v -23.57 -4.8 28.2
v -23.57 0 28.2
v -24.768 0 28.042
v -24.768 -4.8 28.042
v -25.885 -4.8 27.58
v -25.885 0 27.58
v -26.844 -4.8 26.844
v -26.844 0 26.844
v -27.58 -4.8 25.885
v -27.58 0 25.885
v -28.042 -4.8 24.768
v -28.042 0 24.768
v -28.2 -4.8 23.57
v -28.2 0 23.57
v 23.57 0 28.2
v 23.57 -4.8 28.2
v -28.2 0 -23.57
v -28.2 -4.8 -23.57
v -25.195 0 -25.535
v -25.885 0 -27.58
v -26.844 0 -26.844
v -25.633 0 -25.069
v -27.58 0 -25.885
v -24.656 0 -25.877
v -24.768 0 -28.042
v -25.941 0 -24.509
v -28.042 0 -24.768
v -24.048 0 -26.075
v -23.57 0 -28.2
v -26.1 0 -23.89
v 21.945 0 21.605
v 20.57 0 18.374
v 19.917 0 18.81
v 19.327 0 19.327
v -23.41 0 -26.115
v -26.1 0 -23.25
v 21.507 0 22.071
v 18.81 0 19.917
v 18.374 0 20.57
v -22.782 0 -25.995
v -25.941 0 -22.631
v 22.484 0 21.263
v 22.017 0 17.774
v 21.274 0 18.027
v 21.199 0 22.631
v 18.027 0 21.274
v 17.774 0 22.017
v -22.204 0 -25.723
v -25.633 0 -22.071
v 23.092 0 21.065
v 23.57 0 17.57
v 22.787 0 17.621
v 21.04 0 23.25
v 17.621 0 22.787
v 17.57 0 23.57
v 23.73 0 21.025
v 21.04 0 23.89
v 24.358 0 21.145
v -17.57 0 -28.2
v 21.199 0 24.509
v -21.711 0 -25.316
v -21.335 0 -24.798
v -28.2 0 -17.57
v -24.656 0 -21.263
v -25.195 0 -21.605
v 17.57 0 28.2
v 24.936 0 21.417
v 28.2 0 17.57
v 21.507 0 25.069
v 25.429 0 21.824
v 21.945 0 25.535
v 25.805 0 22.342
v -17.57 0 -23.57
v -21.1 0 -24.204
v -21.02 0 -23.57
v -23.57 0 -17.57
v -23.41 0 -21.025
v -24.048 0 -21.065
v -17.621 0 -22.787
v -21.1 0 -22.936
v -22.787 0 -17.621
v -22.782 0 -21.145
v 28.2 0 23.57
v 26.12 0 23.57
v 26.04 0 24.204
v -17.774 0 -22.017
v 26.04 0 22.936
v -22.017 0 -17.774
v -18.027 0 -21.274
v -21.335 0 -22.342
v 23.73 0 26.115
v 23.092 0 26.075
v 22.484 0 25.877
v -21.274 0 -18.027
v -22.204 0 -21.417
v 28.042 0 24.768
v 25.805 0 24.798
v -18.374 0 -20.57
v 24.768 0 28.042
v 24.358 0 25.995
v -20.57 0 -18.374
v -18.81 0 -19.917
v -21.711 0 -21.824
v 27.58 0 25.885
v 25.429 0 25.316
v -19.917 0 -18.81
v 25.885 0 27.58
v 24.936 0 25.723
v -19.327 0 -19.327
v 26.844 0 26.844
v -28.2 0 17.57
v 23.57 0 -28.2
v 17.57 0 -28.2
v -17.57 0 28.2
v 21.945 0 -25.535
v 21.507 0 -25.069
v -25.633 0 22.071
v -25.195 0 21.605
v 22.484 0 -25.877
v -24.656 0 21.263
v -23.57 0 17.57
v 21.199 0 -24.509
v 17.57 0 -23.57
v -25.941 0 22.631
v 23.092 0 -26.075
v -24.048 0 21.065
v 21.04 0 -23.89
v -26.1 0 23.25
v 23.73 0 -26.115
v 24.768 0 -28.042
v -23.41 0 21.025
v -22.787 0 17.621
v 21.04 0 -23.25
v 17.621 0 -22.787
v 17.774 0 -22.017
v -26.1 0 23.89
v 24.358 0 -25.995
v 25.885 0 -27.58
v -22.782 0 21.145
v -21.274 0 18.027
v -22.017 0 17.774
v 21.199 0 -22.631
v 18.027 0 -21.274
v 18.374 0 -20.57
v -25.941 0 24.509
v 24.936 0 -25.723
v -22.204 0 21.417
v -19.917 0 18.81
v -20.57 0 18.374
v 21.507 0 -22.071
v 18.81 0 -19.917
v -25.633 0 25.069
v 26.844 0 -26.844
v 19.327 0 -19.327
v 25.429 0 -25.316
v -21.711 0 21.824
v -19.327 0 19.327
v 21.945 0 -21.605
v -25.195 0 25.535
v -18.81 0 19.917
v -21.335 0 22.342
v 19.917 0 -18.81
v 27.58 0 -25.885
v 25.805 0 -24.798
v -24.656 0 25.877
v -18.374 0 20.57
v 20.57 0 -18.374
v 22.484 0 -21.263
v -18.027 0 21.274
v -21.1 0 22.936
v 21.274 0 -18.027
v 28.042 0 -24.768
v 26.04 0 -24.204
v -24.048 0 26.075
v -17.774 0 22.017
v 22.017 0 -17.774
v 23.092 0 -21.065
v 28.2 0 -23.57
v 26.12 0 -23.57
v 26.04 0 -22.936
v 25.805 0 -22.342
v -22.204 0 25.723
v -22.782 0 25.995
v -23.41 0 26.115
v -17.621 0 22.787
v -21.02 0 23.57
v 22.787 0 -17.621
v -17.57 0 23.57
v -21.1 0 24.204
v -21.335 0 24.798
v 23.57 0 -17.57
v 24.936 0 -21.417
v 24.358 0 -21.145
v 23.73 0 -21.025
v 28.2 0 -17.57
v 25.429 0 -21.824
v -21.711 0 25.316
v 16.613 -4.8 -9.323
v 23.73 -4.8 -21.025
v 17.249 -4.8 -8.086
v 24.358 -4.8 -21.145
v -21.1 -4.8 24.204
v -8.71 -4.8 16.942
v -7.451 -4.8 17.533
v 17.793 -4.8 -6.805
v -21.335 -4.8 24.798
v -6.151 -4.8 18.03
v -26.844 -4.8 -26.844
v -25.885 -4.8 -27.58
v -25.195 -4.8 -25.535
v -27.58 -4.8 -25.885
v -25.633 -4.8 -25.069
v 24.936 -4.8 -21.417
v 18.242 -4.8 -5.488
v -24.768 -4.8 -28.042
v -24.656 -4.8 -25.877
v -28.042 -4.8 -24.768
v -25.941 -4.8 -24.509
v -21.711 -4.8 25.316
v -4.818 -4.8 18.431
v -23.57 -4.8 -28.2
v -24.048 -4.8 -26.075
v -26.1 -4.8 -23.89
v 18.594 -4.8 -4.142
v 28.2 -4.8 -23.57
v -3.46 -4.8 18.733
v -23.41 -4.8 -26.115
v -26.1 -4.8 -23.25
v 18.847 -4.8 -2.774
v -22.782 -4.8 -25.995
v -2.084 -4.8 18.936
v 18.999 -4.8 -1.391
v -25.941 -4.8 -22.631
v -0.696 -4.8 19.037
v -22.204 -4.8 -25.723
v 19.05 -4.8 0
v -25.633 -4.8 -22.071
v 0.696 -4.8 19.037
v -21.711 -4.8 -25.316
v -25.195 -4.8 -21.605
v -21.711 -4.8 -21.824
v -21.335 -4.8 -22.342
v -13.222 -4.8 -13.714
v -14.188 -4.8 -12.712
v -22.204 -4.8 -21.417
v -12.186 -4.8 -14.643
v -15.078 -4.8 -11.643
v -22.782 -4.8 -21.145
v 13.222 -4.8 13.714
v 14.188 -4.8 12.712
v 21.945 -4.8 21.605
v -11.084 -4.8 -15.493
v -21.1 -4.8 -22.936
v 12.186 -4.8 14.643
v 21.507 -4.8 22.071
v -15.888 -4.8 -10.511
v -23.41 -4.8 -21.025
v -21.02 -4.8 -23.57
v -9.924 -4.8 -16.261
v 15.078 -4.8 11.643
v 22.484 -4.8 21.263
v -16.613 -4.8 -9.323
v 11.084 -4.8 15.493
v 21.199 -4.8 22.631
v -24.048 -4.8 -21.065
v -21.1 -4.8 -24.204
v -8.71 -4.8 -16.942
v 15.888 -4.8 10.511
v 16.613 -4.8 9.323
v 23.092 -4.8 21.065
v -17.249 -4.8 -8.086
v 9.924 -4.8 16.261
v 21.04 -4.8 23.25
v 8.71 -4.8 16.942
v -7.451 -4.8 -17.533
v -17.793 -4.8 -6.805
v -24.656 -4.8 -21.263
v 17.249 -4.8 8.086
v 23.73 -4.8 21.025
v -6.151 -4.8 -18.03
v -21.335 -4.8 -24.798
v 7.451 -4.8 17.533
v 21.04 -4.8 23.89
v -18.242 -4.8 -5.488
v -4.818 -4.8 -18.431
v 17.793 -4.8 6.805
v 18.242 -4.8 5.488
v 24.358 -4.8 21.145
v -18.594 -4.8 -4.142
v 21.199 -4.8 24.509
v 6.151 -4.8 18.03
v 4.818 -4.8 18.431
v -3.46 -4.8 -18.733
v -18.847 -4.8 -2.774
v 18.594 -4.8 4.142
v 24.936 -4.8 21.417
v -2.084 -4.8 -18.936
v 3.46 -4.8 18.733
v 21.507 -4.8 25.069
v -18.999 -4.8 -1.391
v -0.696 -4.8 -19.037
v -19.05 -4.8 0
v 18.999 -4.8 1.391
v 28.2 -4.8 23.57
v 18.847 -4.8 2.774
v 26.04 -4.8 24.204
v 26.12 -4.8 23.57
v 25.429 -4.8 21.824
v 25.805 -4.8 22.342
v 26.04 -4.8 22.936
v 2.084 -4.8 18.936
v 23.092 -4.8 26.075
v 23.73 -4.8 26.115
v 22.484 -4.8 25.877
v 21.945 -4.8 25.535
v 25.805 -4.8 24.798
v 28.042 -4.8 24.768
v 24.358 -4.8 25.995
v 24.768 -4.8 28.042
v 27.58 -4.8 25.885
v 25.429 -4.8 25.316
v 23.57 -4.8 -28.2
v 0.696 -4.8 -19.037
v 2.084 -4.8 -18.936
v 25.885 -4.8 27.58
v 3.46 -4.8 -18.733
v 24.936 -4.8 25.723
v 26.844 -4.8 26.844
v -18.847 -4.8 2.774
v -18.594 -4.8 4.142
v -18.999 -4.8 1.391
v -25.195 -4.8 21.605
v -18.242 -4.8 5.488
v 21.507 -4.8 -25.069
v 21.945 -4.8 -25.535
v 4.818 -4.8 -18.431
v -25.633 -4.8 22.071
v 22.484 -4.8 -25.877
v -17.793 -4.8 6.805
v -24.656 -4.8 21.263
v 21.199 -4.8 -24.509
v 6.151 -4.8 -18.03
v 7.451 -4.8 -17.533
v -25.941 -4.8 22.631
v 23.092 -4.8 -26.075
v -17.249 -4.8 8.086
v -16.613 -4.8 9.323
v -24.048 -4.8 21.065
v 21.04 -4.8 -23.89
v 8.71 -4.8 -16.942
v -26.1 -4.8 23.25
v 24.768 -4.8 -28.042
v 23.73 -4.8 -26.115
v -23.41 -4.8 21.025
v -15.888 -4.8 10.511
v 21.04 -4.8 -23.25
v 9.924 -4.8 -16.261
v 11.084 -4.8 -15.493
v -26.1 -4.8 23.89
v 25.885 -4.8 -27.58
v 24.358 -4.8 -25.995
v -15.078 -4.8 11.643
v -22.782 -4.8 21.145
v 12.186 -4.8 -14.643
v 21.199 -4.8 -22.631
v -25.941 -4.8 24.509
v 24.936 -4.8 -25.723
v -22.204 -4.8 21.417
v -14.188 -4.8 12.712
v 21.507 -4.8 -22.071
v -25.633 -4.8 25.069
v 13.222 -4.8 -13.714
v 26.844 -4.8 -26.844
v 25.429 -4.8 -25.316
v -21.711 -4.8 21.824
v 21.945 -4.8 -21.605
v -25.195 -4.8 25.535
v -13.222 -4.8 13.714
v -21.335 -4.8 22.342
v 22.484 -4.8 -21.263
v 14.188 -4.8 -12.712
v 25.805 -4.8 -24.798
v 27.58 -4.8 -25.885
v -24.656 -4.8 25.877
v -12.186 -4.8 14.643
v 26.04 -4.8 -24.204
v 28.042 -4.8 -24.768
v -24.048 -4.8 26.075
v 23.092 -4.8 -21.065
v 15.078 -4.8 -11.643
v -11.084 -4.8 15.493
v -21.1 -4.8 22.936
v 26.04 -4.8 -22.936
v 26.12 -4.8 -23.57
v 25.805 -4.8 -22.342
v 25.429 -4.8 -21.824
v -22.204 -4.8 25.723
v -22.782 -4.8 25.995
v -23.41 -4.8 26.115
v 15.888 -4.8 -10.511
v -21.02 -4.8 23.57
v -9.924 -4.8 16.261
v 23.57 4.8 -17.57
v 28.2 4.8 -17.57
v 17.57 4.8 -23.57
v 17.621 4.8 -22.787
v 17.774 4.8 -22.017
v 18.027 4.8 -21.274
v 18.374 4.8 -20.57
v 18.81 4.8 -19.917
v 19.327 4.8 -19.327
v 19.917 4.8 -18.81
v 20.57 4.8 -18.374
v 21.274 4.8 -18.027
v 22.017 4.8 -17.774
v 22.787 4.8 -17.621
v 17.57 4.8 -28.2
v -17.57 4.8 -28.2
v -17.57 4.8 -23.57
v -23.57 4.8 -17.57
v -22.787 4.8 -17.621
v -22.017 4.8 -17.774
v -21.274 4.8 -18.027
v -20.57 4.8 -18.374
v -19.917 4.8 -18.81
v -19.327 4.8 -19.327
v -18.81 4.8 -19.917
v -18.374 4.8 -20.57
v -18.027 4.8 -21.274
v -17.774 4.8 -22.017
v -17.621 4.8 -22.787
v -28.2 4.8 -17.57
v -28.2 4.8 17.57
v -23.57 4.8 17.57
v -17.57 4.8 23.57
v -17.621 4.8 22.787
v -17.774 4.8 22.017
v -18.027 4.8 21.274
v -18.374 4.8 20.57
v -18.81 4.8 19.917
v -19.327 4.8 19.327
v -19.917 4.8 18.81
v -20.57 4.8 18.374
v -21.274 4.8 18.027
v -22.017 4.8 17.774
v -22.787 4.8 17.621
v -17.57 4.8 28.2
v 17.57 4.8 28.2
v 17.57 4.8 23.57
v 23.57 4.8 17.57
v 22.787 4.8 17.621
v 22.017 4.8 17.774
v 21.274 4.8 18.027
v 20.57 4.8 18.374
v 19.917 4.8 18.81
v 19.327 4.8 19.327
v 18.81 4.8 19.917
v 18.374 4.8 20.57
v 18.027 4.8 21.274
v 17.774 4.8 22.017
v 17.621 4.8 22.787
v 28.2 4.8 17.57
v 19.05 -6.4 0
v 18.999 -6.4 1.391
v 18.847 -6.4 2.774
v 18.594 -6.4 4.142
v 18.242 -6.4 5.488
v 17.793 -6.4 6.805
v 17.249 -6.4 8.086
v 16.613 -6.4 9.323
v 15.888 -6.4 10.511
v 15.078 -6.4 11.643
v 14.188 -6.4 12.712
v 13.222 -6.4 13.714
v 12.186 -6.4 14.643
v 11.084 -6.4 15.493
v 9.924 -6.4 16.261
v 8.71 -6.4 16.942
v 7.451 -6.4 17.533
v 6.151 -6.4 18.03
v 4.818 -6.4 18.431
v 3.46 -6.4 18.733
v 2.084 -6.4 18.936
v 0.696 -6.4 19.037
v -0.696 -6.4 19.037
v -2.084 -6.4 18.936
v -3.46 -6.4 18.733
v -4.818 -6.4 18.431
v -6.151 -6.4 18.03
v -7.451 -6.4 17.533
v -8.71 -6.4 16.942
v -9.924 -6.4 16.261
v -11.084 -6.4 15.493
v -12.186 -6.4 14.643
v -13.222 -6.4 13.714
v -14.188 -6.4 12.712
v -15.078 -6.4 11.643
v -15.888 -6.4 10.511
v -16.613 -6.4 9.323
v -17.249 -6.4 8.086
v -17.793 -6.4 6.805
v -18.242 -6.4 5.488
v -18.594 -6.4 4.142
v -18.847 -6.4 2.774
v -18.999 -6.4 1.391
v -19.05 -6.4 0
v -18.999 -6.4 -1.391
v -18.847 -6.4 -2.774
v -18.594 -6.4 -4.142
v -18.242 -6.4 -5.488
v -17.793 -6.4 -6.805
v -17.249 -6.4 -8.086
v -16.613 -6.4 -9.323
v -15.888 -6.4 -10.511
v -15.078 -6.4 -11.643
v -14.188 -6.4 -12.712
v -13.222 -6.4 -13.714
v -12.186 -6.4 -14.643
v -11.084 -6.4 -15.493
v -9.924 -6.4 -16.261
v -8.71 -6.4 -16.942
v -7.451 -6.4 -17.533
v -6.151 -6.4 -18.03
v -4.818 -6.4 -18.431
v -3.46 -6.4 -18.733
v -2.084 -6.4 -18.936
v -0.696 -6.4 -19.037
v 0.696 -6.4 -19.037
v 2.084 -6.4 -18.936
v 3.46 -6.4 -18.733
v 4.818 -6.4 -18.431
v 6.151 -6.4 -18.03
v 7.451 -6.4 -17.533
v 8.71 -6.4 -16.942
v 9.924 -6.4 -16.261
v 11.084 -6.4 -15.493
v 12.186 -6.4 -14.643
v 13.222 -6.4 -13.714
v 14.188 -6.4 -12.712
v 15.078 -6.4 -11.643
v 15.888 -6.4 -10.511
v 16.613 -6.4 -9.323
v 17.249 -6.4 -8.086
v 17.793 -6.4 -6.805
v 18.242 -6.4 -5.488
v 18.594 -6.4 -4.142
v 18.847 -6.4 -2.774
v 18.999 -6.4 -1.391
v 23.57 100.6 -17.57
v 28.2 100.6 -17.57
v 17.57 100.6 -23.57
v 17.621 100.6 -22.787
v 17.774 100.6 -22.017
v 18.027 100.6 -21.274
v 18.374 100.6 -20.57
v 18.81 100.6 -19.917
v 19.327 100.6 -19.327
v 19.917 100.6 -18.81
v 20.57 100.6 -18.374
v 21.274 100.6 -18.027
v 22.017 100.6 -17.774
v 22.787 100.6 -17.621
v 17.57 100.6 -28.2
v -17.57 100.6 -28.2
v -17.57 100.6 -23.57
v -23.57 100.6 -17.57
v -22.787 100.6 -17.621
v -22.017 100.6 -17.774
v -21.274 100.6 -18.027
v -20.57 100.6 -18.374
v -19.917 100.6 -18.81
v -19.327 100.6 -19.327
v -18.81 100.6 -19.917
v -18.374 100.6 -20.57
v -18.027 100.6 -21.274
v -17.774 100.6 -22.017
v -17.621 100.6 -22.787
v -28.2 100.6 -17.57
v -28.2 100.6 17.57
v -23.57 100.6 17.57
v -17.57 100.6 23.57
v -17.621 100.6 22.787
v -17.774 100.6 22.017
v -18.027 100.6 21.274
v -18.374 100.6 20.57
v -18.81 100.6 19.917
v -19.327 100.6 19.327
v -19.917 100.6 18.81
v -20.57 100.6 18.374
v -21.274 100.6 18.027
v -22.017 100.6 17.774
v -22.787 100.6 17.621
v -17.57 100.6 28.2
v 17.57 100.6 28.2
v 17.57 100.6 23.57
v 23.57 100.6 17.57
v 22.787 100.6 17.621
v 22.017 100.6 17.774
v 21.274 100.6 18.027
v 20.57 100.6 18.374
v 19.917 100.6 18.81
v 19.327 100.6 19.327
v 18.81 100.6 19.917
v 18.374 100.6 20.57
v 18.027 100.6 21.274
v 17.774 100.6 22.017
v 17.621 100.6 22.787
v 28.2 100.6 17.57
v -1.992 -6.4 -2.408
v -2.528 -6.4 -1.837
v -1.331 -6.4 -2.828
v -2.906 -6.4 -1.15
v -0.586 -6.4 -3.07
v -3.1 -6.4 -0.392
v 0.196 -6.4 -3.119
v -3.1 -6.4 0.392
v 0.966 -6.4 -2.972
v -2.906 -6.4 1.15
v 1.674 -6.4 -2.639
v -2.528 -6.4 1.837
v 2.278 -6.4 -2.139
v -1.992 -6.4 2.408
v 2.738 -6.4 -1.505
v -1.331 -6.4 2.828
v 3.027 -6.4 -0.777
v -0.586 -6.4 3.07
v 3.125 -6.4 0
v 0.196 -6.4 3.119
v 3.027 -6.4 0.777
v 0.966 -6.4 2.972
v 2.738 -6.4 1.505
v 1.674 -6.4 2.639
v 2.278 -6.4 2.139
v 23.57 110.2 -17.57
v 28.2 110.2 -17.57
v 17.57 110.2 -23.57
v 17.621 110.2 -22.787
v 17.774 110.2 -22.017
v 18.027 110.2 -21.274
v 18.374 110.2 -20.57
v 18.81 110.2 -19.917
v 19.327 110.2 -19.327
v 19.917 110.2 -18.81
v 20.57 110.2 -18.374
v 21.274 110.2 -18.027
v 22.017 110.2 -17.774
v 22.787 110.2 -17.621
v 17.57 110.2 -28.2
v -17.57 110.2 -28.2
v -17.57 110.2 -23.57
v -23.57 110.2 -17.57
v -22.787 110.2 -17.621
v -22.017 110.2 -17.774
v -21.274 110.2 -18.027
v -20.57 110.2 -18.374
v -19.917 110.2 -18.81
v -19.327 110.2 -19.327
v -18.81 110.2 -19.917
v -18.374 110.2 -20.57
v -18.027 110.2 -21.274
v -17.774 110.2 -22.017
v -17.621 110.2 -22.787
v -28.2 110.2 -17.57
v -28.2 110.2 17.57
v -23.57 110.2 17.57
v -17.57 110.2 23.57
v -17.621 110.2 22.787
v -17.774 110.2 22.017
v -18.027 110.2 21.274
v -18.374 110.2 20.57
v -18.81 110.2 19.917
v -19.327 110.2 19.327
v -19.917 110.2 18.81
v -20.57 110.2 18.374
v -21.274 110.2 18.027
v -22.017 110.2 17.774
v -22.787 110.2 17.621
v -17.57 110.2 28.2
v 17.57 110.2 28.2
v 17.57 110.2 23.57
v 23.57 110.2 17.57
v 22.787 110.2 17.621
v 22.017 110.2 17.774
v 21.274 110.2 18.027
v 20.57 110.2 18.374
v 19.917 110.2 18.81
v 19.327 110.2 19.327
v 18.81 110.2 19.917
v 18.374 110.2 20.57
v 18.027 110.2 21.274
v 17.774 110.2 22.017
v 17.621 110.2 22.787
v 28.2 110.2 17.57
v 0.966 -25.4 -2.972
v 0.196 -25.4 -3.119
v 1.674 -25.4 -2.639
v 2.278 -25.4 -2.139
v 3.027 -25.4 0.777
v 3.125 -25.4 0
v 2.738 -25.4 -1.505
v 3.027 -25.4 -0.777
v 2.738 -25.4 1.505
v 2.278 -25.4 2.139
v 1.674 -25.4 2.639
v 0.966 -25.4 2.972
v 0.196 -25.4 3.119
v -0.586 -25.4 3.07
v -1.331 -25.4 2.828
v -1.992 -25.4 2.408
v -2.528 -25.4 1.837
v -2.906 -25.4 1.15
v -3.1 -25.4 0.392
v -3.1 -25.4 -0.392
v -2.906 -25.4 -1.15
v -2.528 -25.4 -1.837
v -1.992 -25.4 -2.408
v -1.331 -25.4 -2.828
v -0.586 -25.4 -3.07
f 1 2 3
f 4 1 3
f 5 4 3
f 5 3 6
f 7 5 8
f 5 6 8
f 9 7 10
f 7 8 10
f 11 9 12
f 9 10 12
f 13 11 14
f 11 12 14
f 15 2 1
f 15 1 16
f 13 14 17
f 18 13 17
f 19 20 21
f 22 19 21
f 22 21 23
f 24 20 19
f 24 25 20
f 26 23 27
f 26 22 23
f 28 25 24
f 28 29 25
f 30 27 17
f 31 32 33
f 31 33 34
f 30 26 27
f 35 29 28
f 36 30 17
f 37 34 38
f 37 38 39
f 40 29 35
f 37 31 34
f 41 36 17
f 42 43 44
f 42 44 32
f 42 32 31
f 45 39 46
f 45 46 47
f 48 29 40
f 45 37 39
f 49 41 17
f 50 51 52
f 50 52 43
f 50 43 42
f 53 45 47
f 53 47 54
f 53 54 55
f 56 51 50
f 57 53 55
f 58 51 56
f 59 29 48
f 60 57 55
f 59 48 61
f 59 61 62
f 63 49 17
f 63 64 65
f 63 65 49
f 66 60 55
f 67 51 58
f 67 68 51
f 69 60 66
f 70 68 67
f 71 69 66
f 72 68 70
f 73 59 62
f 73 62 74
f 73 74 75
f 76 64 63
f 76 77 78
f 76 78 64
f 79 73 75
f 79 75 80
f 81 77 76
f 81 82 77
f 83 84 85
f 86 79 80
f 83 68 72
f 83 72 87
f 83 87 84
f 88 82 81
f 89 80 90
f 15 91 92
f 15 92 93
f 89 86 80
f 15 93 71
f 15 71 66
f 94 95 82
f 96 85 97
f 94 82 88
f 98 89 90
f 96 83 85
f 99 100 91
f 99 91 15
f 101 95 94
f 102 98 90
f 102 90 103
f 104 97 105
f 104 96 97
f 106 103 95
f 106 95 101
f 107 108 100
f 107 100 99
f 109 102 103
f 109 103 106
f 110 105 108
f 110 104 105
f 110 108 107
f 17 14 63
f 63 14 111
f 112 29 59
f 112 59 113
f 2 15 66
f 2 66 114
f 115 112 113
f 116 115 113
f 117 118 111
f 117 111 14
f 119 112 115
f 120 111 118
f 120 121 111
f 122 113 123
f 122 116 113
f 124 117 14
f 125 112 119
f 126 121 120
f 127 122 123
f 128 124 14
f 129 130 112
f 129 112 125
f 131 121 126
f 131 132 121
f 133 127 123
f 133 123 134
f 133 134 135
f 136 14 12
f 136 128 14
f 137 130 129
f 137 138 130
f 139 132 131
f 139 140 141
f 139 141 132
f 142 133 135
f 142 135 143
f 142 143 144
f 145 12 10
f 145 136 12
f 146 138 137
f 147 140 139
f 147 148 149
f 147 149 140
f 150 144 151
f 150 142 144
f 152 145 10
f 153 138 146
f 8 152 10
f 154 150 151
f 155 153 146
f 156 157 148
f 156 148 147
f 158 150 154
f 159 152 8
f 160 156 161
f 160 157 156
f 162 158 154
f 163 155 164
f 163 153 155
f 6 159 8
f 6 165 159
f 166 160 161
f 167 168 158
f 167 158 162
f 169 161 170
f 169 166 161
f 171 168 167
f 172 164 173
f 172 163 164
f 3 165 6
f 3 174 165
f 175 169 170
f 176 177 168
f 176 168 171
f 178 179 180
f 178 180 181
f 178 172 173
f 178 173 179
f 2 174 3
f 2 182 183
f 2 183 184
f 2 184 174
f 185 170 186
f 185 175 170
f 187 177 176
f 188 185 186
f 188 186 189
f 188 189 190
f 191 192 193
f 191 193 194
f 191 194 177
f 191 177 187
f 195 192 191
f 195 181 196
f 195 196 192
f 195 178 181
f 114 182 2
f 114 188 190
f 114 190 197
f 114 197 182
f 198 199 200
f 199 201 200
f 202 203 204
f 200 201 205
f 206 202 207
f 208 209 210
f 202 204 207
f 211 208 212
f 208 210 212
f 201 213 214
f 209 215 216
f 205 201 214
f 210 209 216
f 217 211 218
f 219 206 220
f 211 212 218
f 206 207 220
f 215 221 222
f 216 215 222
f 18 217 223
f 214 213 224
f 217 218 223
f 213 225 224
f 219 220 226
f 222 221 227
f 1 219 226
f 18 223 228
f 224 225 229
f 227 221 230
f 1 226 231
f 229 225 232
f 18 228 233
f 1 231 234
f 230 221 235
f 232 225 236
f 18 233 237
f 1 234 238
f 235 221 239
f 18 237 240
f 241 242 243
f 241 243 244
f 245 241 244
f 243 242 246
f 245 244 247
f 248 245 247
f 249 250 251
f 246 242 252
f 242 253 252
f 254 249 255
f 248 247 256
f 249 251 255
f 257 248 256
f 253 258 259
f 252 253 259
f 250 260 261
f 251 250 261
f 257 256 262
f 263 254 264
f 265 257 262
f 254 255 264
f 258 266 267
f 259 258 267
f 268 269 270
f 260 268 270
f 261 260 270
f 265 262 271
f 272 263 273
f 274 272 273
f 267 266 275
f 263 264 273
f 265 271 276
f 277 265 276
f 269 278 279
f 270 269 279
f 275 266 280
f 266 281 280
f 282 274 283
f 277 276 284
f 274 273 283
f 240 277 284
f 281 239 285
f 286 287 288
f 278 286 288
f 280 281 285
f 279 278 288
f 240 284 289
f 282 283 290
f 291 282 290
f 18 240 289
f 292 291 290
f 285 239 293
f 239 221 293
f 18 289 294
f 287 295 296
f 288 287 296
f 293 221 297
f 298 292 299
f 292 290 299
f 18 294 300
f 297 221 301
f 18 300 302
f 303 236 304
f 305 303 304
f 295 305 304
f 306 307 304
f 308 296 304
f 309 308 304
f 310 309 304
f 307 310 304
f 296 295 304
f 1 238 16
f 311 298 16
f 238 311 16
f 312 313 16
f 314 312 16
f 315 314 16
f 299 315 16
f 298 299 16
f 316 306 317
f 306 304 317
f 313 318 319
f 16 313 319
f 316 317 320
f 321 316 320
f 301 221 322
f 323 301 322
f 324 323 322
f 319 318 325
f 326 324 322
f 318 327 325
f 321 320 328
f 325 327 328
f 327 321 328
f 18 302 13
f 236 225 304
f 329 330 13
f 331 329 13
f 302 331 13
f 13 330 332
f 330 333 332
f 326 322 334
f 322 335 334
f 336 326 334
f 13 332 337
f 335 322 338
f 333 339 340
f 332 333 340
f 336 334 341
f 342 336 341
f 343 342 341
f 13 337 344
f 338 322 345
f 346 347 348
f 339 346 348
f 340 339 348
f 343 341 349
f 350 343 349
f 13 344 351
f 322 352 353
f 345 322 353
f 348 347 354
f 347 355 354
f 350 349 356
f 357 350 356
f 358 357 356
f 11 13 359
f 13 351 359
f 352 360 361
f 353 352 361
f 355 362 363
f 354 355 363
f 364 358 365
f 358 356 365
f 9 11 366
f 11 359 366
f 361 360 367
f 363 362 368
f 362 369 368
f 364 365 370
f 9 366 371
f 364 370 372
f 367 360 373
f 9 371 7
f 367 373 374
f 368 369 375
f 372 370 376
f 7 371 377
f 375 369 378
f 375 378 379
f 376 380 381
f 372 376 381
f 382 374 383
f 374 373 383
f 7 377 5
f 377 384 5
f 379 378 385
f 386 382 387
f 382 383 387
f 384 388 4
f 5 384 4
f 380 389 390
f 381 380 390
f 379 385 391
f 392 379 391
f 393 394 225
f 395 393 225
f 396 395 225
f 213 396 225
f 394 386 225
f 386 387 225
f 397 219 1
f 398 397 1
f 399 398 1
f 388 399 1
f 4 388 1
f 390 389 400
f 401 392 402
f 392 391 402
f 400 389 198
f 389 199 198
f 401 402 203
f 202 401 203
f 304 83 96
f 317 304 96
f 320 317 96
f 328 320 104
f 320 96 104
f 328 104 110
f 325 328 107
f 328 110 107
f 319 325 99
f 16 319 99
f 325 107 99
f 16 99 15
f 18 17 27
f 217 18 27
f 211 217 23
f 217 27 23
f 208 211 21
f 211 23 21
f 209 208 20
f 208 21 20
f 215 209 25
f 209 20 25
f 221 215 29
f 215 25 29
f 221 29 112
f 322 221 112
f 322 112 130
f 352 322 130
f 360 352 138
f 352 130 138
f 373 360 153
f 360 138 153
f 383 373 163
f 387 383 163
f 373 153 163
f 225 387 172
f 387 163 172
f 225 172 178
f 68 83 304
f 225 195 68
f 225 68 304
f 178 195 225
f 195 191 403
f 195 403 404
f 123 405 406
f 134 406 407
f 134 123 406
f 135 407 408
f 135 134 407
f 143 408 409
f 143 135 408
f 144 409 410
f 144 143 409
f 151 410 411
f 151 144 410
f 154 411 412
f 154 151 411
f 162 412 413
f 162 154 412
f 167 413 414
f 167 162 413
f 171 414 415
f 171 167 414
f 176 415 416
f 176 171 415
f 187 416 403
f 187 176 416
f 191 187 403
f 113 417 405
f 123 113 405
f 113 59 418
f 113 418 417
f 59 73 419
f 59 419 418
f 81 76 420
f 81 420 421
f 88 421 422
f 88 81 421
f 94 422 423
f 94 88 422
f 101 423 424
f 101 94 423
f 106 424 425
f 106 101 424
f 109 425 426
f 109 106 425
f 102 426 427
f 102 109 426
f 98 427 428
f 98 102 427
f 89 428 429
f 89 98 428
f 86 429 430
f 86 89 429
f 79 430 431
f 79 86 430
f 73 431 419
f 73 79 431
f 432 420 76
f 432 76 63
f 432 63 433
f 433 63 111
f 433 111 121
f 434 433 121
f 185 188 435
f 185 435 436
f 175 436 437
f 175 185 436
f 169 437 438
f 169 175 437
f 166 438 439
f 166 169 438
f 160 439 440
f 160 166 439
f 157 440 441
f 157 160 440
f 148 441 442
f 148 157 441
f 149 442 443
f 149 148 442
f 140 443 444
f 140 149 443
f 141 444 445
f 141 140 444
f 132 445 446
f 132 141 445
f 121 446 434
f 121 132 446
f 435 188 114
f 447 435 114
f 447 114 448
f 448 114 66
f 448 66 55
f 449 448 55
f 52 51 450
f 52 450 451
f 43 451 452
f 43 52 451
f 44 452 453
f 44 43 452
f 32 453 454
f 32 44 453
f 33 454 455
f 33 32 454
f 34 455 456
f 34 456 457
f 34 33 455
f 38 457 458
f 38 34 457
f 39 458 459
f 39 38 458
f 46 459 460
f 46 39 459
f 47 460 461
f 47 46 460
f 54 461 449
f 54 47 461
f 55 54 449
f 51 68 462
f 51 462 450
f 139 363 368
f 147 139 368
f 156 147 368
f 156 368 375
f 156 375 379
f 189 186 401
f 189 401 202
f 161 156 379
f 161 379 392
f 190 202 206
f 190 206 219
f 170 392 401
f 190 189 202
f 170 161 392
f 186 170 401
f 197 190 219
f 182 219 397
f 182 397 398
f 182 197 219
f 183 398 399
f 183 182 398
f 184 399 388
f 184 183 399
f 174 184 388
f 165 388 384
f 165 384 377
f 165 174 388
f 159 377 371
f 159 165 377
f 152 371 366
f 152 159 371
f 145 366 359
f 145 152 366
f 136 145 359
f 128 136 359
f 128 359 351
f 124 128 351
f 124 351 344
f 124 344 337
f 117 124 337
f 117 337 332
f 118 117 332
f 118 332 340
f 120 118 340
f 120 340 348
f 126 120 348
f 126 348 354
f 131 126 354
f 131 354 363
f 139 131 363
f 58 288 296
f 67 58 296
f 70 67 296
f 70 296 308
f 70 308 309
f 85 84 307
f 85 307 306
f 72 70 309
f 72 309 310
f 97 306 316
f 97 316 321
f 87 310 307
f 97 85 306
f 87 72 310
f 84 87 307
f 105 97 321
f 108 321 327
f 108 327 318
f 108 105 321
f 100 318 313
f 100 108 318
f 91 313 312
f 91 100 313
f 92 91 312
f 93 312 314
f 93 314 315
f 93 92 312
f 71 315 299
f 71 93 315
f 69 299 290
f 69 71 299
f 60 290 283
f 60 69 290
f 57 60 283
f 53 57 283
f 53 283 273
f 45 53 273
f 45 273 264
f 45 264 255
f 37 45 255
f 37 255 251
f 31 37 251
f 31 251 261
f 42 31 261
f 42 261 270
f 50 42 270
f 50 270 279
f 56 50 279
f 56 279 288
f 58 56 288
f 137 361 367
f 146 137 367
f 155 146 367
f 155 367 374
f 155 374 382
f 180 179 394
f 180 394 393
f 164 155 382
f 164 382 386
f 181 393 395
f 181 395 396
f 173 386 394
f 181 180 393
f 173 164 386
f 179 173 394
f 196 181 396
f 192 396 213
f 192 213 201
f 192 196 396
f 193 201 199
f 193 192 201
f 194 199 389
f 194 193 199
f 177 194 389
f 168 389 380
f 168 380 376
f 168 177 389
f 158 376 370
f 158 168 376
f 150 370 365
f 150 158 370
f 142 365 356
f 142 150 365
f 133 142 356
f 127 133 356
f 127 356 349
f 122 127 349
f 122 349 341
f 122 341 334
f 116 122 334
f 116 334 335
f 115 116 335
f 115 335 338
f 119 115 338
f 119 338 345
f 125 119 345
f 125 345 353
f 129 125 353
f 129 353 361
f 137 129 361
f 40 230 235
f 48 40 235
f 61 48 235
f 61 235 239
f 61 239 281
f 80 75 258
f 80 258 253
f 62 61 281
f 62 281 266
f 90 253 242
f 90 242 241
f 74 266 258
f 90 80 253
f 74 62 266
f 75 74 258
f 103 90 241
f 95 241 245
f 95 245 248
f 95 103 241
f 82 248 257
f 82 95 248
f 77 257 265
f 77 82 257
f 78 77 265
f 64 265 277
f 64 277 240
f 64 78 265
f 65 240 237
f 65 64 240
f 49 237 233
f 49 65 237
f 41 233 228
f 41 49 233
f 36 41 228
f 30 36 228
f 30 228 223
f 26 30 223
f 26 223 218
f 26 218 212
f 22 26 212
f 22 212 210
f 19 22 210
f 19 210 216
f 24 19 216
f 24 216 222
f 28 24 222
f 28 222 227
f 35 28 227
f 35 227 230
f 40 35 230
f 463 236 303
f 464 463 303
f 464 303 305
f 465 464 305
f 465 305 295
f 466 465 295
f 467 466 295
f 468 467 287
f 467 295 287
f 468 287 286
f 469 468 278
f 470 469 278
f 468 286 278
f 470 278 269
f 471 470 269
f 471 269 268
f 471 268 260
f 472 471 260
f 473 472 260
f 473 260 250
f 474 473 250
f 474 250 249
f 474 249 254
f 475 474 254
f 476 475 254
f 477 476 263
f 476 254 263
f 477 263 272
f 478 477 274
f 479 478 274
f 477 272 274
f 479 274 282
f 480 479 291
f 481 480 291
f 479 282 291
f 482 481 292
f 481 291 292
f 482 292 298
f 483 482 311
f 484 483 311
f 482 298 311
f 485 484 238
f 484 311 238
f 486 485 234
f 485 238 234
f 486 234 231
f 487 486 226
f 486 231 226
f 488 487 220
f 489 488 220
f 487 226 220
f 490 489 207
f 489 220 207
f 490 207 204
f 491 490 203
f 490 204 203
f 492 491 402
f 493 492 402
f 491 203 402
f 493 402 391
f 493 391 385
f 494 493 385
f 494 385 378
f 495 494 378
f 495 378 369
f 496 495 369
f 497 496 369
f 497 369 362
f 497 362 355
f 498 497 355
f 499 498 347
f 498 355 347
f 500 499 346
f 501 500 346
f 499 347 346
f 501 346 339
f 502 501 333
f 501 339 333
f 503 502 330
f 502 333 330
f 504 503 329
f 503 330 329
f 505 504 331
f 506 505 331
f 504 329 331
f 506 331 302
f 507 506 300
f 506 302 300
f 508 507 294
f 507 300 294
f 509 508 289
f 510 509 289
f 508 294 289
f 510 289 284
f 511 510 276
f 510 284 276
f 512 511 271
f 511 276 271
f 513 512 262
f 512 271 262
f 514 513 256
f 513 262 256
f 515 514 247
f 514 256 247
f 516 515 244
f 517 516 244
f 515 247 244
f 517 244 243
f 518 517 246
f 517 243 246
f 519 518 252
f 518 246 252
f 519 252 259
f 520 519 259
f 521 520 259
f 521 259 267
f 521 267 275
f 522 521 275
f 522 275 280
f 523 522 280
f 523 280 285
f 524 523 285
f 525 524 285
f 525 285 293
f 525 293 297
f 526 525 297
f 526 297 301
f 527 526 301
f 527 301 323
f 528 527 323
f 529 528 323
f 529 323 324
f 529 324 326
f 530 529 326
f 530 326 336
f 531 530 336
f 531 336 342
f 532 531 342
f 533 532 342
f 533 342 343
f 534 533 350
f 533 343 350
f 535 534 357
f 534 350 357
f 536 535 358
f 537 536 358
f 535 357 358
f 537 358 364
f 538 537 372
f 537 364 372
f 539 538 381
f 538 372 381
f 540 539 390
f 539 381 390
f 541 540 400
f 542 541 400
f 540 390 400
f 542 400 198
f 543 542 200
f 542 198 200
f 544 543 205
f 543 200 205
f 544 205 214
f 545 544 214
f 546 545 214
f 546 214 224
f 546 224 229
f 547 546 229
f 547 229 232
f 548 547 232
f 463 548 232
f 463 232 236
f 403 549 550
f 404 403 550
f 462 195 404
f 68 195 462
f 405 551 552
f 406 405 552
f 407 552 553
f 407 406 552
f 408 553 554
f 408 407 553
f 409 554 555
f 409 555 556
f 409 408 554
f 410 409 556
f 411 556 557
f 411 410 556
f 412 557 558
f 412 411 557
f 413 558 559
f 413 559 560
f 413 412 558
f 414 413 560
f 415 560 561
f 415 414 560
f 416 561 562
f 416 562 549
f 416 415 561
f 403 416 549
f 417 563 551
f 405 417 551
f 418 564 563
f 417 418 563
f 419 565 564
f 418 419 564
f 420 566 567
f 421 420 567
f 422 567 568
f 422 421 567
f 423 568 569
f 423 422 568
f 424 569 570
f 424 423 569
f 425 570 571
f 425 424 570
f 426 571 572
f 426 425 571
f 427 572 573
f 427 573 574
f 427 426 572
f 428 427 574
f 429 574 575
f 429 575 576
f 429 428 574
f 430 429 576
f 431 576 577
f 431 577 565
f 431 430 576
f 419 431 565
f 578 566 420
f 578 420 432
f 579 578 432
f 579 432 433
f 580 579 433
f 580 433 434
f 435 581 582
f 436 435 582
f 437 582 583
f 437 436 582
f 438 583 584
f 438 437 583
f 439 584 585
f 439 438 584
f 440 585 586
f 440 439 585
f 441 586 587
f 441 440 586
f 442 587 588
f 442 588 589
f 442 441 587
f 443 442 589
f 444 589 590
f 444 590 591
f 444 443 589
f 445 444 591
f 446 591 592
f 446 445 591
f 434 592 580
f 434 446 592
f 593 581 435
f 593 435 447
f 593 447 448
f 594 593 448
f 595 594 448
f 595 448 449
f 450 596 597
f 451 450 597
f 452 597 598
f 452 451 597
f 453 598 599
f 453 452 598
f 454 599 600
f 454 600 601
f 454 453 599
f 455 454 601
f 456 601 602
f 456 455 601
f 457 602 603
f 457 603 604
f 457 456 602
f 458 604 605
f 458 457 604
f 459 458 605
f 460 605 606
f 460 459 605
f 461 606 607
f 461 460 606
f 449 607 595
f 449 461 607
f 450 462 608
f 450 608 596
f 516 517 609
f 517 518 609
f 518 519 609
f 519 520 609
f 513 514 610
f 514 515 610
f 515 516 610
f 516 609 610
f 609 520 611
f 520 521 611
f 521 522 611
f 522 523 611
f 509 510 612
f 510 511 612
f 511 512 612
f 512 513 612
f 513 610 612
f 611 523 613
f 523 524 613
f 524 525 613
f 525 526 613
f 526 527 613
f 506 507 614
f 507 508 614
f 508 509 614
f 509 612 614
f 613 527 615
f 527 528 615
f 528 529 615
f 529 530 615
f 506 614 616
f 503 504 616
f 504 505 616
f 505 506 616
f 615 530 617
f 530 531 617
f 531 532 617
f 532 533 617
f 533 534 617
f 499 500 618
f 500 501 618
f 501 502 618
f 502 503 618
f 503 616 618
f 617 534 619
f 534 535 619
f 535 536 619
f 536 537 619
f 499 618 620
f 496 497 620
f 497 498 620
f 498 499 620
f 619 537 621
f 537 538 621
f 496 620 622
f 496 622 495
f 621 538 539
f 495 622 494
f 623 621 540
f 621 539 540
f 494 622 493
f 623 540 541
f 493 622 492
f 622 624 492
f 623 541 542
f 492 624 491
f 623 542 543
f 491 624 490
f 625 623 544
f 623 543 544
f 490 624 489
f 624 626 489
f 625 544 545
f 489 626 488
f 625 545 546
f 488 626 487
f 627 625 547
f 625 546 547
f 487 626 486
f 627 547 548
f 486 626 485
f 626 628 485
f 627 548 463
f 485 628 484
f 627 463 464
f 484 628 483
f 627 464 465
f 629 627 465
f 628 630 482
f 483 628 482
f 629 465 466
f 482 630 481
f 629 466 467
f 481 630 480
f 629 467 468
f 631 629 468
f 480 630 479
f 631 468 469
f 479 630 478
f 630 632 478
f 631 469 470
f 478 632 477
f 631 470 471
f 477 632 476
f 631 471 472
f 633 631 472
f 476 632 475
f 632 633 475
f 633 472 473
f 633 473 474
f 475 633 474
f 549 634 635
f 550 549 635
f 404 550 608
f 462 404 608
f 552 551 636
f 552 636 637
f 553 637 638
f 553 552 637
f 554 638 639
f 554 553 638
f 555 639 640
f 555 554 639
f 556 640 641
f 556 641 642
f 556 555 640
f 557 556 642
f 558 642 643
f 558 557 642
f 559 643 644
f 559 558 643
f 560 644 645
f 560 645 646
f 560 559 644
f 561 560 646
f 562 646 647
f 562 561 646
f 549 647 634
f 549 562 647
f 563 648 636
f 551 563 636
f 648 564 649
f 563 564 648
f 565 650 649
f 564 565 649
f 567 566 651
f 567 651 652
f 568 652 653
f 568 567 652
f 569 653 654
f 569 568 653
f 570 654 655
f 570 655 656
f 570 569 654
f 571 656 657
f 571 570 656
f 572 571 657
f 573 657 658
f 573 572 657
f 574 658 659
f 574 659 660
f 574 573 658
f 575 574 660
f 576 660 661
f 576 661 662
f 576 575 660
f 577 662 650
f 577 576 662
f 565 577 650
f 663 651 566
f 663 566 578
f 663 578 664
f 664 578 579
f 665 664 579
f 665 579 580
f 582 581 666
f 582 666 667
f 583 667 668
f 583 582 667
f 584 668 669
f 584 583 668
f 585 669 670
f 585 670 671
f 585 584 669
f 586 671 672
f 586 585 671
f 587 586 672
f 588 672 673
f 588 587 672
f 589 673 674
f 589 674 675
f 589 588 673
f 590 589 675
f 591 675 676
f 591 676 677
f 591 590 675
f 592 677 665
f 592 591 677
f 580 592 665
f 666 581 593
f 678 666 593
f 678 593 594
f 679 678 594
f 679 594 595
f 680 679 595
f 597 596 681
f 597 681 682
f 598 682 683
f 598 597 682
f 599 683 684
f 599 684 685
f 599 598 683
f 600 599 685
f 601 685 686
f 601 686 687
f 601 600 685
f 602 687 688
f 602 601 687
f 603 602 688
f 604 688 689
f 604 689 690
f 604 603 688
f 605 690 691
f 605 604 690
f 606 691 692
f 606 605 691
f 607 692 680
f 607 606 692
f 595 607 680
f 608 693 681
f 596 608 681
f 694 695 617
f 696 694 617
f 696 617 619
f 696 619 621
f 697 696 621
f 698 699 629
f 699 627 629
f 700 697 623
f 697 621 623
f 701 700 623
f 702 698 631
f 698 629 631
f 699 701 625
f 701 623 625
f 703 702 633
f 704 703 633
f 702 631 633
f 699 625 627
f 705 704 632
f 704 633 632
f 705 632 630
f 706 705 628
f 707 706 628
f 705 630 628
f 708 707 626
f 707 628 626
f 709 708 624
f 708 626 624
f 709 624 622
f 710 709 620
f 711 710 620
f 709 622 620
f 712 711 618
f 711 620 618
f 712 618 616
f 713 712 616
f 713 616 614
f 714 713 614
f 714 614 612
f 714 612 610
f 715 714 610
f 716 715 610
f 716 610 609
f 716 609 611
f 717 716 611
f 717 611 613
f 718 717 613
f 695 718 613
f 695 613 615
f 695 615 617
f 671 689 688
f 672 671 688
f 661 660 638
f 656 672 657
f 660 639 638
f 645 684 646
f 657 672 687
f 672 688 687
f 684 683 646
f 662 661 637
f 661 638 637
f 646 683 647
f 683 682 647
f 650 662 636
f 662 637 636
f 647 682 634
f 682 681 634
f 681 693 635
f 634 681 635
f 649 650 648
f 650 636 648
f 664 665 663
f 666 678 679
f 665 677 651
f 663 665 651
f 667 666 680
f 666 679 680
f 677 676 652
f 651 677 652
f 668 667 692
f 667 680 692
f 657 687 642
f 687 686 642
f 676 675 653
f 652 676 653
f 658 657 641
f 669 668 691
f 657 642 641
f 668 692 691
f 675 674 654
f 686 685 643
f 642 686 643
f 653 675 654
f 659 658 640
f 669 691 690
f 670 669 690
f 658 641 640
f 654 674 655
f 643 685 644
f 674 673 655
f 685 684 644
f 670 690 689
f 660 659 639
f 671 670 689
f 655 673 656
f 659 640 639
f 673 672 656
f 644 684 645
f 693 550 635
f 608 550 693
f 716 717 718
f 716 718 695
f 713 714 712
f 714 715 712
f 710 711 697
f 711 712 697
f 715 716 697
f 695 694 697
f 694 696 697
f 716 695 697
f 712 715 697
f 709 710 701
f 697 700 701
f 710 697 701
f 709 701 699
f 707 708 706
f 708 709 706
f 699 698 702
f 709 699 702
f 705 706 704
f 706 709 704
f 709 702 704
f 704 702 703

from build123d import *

# Parameters (mm, degrees)
SKETCH_R     = 2.55
PAD_DEPTH    = 4.8
SKETCH001_R  = 19.05
PAD001_DEPTH = 1.6
SKETCH002_R  = 3.175
PAD002_DEPTH = 19
PAD003_DEPTH = 4.8
PAD004_DEPTH = 95.8
PAD005_DEPTH = 9.6


with BuildPart() as part:
    # Sketch → Pad (new body)
    with BuildSketch(Plane.XZ):
        with BuildLine():
            ThreePointArc((-23.569992, 28.200011), (-26.843905, 26.843912), (-28.200003, 23.57))
            Line((-28.200003, 23.57), (-28.200003, -23.569985))
            ThreePointArc((-28.200003, -23.569985), (-26.84391, -26.843907), (-23.569992, -28.200011))
            Line((-23.569992, -28.200011), (23.569992, -28.200011))
            ThreePointArc((23.569992, -28.200011), (26.843903, -26.843907), (28.199997, -23.569992))
            Line((28.199997, 23.569992), (28.199997, -23.569992))
            ThreePointArc((28.199997, 23.569992), (26.843903, 26.843907), (23.569992, 28.200011))
            Line((-23.569992, 28.200011), (23.569992, 28.200011))
        make_face()
        with Locations((-23.569992, 23.57)):
            Circle(SKETCH_R, mode=Mode.SUBTRACT)
        with Locations((23.569985, 23.57)):
            Circle(SKETCH_R, mode=Mode.SUBTRACT)
        with Locations((23.569985, -23.57)):
            Circle(SKETCH_R, mode=Mode.SUBTRACT)
        with Locations((-23.569992, -23.57)):
            Circle(SKETCH_R, mode=Mode.SUBTRACT)
    extrude(amount=PAD_DEPTH)

    # Sketch001 → Pad001 (new body)
    with BuildSketch(Plane.XZ.offset(4.8)):
        Circle(SKETCH001_R)
    extrude(amount=PAD001_DEPTH)

    # Sketch002 → Pad002 (new body)
    with BuildSketch(Plane.XZ.offset(6.4)):
        Circle(SKETCH002_R)
    extrude(amount=PAD002_DEPTH)

    # Sketch003 → Pad003 (new body)
    with BuildSketch(Plane(origin=(0, 0, 0), x_dir=(1, 0, 0), z_dir=(0, 1, 0))):
        with BuildLine():
            ThreePointArc((-23.569999, 17.57), (-19.327359, 19.32736), (-17.57, 23.570001))
            Line((-17.57, 23.570001), (-17.57, 28.2))
            Line((-17.57, 28.2), (17.57, 28.2))
            Line((17.57, 28.2), (17.57, 23.56997))
            ThreePointArc((17.57, 23.56997), (19.32737, 19.327349), (23.57, 17.57))
            Line((23.57, 17.57), (28.2, 17.57))
            Line((28.2, 17.57), (28.2, -17.57))
            Line((28.2, -17.57), (23.570008, -17.57))
            ThreePointArc((23.570008, -17.57), (19.327365, -19.327354), (17.57, -23.569992))
            Line((17.57, -28.2), (17.57, -23.569992))
            Line((-17.57, -28.2), (17.57, -28.2))
            Line((-17.57, -23.57), (-17.57, -28.2))
            ThreePointArc((-17.57, -23.57), (-19.327359, -19.327359), (-23.57, -17.57))
            Line((-28.2, -17.57), (-23.57, -17.57))
            Line((-28.2, 17.57), (-28.2, -17.57))
            Line((-23.569999, 17.57), (-28.2, 17.57))
        make_face()
    extrude(amount=PAD003_DEPTH)

    # Sketch004 → Pad004 (new body)
    with BuildSketch(Plane(origin=(0, 4.8, 0), x_dir=(1, 0, 0), z_dir=(0, 1, 0))):
        with BuildLine():
            ThreePointArc((-23.569999, 17.57), (-19.327359, 19.32736), (-17.57, 23.570001))
            Line((-17.57, 23.570001), (-17.57, 28.2))
            Line((-17.57, 28.2), (17.57, 28.2))
            Line((17.57, 28.2), (17.57, 23.56997))
            ThreePointArc((17.57, 23.56997), (19.32737, 19.327349), (23.57, 17.57))
            Line((23.57, 17.57), (28.2, 17.57))
            Line((28.2, 17.57), (28.2, -17.57))
            Line((28.2, -17.57), (23.570008, -17.57))
            ThreePointArc((23.570008, -17.57), (19.327365, -19.327354), (17.57, -23.569992))
            Line((17.57, -28.2), (17.57, -23.569992))
            Line((-17.57, -28.2), (17.57, -28.2))
            Line((-17.57, -23.57), (-17.57, -28.2))
            ThreePointArc((-17.57, -23.57), (-19.327359, -19.327359), (-23.57, -17.57))
            Line((-28.2, -17.57), (-23.57, -17.57))
            Line((-28.2, 17.57), (-28.2, -17.57))
            Line((-23.569999, 17.57), (-28.2, 17.57))
        make_face()
    extrude(amount=PAD004_DEPTH)

    # Sketch005 → Pad005 (new body)
    with BuildSketch(Plane(origin=(0, 100.6, 0), x_dir=(1, 0, 0), z_dir=(0, 1, 0))):
        with BuildLine():
            ThreePointArc((-23.569999, 17.57), (-19.327359, 19.32736), (-17.57, 23.570001))
            Line((-17.57, 23.570001), (-17.57, 28.2))
            Line((-17.57, 28.2), (17.57, 28.2))
            Line((17.57, 28.2), (17.57, 23.56997))
            ThreePointArc((17.57, 23.56997), (19.32737, 19.327349), (23.57, 17.57))
            Line((23.57, 17.57), (28.2, 17.57))
            Line((28.2, 17.57), (28.2, -17.57))
            Line((28.2, -17.57), (23.570008, -17.57))
            ThreePointArc((23.570008, -17.57), (19.327365, -19.327354), (17.57, -23.569992))
            Line((17.57, -28.2), (17.57, -23.569992))
            Line((-17.57, -28.2), (17.57, -28.2))
            Line((-17.57, -23.57), (-17.57, -28.2))
            ThreePointArc((-17.57, -23.57), (-19.327359, -19.327359), (-23.57, -17.57))
            Line((-28.2, -17.57), (-23.57, -17.57))
            Line((-28.2, 17.57), (-28.2, -17.57))
            Line((-23.569999, 17.57), (-28.2, 17.57))
        make_face()
    extrude(amount=PAD005_DEPTH)


solid = part.part
